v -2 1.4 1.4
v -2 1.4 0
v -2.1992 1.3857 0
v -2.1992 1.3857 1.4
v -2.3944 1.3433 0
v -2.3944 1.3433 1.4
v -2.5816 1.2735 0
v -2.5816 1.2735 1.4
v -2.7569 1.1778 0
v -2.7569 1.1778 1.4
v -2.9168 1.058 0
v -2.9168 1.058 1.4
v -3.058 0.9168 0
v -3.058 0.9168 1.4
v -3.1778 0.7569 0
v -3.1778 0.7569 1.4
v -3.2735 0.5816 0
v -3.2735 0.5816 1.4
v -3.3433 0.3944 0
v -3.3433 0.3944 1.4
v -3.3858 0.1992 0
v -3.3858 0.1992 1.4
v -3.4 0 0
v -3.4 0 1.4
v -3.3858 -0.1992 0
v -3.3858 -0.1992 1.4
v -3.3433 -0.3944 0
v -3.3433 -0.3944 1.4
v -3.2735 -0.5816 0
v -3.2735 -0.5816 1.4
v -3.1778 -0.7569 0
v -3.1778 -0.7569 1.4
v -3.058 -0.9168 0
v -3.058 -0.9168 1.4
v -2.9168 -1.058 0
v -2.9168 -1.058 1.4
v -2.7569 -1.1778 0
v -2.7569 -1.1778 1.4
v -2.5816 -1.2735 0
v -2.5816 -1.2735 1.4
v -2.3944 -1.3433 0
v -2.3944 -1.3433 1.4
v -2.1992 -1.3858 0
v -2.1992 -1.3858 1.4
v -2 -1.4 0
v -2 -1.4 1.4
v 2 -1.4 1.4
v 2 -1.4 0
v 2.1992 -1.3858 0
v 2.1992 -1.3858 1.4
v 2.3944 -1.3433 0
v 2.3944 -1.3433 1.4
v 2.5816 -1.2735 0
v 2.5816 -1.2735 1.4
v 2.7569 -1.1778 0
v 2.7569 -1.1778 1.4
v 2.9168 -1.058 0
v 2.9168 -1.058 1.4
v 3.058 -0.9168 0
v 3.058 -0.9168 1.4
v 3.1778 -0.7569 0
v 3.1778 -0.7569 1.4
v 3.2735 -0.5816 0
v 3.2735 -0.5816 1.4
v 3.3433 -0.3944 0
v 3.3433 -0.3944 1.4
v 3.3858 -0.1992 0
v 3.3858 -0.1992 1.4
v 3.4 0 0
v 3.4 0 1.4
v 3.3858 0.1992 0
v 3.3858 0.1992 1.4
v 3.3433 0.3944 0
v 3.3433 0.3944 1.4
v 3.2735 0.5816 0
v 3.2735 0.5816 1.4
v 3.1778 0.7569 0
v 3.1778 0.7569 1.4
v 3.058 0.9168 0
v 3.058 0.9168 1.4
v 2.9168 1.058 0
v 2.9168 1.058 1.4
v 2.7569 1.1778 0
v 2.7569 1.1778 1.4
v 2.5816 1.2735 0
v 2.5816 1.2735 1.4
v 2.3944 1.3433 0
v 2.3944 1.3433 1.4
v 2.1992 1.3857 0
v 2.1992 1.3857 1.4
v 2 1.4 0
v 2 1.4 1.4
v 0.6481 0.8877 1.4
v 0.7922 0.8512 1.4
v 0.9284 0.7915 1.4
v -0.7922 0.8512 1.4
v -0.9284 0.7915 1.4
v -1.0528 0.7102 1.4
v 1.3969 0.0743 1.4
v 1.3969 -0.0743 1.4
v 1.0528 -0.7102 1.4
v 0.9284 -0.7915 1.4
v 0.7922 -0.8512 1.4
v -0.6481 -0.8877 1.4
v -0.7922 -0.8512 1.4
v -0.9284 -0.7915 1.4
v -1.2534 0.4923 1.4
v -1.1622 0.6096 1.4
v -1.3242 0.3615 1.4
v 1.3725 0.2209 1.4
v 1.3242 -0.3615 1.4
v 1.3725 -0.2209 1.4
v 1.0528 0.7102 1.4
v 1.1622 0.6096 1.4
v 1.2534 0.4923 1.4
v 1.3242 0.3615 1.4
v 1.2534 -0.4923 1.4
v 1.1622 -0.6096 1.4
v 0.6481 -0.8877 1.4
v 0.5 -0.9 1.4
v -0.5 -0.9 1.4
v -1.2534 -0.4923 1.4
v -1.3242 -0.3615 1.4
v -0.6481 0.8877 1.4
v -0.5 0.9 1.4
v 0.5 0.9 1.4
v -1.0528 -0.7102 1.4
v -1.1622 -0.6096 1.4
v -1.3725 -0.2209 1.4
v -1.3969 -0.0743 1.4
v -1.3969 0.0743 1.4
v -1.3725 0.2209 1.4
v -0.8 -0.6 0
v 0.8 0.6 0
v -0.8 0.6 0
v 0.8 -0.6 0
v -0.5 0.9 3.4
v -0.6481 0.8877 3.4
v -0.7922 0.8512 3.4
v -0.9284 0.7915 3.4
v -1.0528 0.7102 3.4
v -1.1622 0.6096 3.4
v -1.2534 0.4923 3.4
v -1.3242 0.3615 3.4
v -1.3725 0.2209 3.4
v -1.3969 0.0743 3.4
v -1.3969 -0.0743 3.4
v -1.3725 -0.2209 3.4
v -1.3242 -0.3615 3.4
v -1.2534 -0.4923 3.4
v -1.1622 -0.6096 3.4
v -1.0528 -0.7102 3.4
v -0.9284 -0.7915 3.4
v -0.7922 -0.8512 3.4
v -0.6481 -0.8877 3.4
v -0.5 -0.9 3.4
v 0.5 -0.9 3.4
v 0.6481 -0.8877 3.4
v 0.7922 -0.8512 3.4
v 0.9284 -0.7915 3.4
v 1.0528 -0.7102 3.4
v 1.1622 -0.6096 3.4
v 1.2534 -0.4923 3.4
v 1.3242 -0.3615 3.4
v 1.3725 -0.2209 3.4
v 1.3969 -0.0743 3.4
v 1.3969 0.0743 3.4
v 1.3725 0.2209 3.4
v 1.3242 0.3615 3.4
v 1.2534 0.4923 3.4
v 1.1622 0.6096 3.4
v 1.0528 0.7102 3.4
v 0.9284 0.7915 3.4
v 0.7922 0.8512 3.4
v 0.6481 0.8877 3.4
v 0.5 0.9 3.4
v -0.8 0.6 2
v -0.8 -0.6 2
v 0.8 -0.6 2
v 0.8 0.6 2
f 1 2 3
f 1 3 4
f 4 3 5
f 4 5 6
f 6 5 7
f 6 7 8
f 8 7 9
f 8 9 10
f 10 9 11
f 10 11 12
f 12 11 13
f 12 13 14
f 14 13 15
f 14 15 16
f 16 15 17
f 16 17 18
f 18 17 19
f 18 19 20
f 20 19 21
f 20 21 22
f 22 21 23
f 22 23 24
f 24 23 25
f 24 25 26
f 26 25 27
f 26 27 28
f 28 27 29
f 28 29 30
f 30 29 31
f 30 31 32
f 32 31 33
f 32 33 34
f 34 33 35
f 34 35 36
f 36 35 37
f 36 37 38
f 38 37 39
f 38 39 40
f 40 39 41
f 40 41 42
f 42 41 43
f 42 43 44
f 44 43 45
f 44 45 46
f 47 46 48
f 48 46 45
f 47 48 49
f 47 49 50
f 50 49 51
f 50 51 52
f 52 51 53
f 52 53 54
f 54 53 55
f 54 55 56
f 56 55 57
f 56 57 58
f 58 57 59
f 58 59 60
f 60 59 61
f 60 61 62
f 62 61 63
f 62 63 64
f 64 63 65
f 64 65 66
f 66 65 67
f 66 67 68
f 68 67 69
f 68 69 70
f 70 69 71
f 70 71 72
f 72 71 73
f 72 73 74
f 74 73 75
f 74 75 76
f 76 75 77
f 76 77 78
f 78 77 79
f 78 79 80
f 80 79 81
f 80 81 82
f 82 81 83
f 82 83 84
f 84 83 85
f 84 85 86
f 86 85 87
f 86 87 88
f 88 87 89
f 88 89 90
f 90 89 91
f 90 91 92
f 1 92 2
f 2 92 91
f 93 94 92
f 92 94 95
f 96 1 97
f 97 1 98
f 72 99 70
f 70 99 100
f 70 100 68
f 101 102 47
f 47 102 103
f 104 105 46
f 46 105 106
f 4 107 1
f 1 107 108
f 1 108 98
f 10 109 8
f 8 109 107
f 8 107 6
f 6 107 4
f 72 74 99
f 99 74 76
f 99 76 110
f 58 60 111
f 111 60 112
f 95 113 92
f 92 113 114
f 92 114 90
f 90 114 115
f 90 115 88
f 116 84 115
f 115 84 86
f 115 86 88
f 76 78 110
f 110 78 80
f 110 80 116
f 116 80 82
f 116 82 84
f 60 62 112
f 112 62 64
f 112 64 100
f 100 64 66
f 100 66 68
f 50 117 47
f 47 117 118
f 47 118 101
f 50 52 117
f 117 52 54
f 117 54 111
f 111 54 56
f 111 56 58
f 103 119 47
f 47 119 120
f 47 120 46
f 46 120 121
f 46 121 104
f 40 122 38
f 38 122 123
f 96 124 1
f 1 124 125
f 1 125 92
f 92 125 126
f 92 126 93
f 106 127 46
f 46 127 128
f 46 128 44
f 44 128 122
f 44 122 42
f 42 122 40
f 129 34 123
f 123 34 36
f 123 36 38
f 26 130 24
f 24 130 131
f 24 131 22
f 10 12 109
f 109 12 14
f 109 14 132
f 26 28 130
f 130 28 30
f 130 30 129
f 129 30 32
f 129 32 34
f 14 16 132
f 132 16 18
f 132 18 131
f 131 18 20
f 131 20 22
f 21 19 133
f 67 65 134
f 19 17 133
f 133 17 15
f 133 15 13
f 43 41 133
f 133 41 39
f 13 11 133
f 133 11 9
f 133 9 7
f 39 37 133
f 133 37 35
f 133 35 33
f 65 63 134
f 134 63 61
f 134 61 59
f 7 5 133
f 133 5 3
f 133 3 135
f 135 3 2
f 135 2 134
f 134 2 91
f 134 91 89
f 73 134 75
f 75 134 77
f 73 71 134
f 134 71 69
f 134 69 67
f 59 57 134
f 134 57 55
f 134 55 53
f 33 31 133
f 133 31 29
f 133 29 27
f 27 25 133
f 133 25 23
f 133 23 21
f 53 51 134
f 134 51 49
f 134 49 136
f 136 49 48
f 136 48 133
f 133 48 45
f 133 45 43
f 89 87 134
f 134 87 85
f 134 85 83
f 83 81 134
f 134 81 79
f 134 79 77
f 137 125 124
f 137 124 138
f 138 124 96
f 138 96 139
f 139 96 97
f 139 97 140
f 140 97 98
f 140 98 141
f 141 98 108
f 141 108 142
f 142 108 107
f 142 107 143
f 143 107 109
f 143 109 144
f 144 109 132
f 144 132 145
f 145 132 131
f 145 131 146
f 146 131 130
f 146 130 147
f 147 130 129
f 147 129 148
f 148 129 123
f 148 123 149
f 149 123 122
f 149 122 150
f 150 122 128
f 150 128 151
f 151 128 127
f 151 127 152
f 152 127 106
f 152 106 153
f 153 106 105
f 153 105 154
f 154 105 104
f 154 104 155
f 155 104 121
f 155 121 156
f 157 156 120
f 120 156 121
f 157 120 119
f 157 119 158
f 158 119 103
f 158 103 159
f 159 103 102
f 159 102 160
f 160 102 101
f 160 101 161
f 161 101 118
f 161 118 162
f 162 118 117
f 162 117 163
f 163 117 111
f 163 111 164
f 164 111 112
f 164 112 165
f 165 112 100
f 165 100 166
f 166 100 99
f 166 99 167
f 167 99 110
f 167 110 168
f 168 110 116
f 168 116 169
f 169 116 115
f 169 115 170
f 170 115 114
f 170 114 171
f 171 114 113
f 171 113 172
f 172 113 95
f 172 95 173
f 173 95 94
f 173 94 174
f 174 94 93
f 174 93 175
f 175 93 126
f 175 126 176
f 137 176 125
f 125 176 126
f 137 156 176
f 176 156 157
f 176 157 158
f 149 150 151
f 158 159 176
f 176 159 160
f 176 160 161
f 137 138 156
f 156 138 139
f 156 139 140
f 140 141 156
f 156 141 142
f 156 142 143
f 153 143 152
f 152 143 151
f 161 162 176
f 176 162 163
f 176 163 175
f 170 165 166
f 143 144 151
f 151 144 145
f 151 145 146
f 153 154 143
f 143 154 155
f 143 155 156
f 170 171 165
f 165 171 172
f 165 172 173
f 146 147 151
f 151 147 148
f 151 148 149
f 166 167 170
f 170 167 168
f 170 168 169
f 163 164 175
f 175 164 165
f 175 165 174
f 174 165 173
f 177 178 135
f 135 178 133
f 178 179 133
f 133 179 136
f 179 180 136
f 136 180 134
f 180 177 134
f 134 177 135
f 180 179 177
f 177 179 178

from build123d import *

# Parameters (mm, degrees)
EXTRUDE_1_DEPTH     = 1.4
EXTRUDE_2_DEPTH     = 2
SKETCH_4_W          = 1.6
SKETCH_4_H          = 1.2
CUT_EXTRUDE_1_DEPTH = 2


with BuildPart() as part:
    # 草图2 → 凸台-拉伸1 (new body)
    with BuildSketch(Plane.XY):
        with BuildLine():
            Line((-2, 1.4), (2, 1.4))
            ThreePointArc((2, 1.4), (3.4, 0), (2, -1.4))
            Line((2, -1.4), (-2, -1.4))
            ThreePointArc((-2, -1.4), (-3.4, 0), (-2, 1.4))
        make_face()
    extrude(amount=EXTRUDE_1_DEPTH)

    # 草图3 → 凸台-拉伸2 (add)
    with BuildSketch(Plane.XY.offset(1.4)):
        with BuildLine():
            Line((-0.5, 0.9), (0.5, 0.9))
            ThreePointArc((0.5, 0.9), (1.4, 0), (0.5, -0.9))
            Line((0.5, -0.9), (-0.5, -0.9))
            ThreePointArc((-0.5, -0.9), (-1.4, 0), (-0.5, 0.9))
        make_face()
    extrude(amount=EXTRUDE_2_DEPTH)

    # 草图4 → 切除-拉伸1 (cut)
    with BuildSketch(Plane(origin=(0, 0, 0), x_dir=(-1, 0, 0), z_dir=(0, 0, -1))):
        Rectangle(SKETCH_4_W, SKETCH_4_H)
    extrude(amount=-CUT_EXTRUDE_1_DEPTH, mode=Mode.SUBTRACT)


solid = part.part
